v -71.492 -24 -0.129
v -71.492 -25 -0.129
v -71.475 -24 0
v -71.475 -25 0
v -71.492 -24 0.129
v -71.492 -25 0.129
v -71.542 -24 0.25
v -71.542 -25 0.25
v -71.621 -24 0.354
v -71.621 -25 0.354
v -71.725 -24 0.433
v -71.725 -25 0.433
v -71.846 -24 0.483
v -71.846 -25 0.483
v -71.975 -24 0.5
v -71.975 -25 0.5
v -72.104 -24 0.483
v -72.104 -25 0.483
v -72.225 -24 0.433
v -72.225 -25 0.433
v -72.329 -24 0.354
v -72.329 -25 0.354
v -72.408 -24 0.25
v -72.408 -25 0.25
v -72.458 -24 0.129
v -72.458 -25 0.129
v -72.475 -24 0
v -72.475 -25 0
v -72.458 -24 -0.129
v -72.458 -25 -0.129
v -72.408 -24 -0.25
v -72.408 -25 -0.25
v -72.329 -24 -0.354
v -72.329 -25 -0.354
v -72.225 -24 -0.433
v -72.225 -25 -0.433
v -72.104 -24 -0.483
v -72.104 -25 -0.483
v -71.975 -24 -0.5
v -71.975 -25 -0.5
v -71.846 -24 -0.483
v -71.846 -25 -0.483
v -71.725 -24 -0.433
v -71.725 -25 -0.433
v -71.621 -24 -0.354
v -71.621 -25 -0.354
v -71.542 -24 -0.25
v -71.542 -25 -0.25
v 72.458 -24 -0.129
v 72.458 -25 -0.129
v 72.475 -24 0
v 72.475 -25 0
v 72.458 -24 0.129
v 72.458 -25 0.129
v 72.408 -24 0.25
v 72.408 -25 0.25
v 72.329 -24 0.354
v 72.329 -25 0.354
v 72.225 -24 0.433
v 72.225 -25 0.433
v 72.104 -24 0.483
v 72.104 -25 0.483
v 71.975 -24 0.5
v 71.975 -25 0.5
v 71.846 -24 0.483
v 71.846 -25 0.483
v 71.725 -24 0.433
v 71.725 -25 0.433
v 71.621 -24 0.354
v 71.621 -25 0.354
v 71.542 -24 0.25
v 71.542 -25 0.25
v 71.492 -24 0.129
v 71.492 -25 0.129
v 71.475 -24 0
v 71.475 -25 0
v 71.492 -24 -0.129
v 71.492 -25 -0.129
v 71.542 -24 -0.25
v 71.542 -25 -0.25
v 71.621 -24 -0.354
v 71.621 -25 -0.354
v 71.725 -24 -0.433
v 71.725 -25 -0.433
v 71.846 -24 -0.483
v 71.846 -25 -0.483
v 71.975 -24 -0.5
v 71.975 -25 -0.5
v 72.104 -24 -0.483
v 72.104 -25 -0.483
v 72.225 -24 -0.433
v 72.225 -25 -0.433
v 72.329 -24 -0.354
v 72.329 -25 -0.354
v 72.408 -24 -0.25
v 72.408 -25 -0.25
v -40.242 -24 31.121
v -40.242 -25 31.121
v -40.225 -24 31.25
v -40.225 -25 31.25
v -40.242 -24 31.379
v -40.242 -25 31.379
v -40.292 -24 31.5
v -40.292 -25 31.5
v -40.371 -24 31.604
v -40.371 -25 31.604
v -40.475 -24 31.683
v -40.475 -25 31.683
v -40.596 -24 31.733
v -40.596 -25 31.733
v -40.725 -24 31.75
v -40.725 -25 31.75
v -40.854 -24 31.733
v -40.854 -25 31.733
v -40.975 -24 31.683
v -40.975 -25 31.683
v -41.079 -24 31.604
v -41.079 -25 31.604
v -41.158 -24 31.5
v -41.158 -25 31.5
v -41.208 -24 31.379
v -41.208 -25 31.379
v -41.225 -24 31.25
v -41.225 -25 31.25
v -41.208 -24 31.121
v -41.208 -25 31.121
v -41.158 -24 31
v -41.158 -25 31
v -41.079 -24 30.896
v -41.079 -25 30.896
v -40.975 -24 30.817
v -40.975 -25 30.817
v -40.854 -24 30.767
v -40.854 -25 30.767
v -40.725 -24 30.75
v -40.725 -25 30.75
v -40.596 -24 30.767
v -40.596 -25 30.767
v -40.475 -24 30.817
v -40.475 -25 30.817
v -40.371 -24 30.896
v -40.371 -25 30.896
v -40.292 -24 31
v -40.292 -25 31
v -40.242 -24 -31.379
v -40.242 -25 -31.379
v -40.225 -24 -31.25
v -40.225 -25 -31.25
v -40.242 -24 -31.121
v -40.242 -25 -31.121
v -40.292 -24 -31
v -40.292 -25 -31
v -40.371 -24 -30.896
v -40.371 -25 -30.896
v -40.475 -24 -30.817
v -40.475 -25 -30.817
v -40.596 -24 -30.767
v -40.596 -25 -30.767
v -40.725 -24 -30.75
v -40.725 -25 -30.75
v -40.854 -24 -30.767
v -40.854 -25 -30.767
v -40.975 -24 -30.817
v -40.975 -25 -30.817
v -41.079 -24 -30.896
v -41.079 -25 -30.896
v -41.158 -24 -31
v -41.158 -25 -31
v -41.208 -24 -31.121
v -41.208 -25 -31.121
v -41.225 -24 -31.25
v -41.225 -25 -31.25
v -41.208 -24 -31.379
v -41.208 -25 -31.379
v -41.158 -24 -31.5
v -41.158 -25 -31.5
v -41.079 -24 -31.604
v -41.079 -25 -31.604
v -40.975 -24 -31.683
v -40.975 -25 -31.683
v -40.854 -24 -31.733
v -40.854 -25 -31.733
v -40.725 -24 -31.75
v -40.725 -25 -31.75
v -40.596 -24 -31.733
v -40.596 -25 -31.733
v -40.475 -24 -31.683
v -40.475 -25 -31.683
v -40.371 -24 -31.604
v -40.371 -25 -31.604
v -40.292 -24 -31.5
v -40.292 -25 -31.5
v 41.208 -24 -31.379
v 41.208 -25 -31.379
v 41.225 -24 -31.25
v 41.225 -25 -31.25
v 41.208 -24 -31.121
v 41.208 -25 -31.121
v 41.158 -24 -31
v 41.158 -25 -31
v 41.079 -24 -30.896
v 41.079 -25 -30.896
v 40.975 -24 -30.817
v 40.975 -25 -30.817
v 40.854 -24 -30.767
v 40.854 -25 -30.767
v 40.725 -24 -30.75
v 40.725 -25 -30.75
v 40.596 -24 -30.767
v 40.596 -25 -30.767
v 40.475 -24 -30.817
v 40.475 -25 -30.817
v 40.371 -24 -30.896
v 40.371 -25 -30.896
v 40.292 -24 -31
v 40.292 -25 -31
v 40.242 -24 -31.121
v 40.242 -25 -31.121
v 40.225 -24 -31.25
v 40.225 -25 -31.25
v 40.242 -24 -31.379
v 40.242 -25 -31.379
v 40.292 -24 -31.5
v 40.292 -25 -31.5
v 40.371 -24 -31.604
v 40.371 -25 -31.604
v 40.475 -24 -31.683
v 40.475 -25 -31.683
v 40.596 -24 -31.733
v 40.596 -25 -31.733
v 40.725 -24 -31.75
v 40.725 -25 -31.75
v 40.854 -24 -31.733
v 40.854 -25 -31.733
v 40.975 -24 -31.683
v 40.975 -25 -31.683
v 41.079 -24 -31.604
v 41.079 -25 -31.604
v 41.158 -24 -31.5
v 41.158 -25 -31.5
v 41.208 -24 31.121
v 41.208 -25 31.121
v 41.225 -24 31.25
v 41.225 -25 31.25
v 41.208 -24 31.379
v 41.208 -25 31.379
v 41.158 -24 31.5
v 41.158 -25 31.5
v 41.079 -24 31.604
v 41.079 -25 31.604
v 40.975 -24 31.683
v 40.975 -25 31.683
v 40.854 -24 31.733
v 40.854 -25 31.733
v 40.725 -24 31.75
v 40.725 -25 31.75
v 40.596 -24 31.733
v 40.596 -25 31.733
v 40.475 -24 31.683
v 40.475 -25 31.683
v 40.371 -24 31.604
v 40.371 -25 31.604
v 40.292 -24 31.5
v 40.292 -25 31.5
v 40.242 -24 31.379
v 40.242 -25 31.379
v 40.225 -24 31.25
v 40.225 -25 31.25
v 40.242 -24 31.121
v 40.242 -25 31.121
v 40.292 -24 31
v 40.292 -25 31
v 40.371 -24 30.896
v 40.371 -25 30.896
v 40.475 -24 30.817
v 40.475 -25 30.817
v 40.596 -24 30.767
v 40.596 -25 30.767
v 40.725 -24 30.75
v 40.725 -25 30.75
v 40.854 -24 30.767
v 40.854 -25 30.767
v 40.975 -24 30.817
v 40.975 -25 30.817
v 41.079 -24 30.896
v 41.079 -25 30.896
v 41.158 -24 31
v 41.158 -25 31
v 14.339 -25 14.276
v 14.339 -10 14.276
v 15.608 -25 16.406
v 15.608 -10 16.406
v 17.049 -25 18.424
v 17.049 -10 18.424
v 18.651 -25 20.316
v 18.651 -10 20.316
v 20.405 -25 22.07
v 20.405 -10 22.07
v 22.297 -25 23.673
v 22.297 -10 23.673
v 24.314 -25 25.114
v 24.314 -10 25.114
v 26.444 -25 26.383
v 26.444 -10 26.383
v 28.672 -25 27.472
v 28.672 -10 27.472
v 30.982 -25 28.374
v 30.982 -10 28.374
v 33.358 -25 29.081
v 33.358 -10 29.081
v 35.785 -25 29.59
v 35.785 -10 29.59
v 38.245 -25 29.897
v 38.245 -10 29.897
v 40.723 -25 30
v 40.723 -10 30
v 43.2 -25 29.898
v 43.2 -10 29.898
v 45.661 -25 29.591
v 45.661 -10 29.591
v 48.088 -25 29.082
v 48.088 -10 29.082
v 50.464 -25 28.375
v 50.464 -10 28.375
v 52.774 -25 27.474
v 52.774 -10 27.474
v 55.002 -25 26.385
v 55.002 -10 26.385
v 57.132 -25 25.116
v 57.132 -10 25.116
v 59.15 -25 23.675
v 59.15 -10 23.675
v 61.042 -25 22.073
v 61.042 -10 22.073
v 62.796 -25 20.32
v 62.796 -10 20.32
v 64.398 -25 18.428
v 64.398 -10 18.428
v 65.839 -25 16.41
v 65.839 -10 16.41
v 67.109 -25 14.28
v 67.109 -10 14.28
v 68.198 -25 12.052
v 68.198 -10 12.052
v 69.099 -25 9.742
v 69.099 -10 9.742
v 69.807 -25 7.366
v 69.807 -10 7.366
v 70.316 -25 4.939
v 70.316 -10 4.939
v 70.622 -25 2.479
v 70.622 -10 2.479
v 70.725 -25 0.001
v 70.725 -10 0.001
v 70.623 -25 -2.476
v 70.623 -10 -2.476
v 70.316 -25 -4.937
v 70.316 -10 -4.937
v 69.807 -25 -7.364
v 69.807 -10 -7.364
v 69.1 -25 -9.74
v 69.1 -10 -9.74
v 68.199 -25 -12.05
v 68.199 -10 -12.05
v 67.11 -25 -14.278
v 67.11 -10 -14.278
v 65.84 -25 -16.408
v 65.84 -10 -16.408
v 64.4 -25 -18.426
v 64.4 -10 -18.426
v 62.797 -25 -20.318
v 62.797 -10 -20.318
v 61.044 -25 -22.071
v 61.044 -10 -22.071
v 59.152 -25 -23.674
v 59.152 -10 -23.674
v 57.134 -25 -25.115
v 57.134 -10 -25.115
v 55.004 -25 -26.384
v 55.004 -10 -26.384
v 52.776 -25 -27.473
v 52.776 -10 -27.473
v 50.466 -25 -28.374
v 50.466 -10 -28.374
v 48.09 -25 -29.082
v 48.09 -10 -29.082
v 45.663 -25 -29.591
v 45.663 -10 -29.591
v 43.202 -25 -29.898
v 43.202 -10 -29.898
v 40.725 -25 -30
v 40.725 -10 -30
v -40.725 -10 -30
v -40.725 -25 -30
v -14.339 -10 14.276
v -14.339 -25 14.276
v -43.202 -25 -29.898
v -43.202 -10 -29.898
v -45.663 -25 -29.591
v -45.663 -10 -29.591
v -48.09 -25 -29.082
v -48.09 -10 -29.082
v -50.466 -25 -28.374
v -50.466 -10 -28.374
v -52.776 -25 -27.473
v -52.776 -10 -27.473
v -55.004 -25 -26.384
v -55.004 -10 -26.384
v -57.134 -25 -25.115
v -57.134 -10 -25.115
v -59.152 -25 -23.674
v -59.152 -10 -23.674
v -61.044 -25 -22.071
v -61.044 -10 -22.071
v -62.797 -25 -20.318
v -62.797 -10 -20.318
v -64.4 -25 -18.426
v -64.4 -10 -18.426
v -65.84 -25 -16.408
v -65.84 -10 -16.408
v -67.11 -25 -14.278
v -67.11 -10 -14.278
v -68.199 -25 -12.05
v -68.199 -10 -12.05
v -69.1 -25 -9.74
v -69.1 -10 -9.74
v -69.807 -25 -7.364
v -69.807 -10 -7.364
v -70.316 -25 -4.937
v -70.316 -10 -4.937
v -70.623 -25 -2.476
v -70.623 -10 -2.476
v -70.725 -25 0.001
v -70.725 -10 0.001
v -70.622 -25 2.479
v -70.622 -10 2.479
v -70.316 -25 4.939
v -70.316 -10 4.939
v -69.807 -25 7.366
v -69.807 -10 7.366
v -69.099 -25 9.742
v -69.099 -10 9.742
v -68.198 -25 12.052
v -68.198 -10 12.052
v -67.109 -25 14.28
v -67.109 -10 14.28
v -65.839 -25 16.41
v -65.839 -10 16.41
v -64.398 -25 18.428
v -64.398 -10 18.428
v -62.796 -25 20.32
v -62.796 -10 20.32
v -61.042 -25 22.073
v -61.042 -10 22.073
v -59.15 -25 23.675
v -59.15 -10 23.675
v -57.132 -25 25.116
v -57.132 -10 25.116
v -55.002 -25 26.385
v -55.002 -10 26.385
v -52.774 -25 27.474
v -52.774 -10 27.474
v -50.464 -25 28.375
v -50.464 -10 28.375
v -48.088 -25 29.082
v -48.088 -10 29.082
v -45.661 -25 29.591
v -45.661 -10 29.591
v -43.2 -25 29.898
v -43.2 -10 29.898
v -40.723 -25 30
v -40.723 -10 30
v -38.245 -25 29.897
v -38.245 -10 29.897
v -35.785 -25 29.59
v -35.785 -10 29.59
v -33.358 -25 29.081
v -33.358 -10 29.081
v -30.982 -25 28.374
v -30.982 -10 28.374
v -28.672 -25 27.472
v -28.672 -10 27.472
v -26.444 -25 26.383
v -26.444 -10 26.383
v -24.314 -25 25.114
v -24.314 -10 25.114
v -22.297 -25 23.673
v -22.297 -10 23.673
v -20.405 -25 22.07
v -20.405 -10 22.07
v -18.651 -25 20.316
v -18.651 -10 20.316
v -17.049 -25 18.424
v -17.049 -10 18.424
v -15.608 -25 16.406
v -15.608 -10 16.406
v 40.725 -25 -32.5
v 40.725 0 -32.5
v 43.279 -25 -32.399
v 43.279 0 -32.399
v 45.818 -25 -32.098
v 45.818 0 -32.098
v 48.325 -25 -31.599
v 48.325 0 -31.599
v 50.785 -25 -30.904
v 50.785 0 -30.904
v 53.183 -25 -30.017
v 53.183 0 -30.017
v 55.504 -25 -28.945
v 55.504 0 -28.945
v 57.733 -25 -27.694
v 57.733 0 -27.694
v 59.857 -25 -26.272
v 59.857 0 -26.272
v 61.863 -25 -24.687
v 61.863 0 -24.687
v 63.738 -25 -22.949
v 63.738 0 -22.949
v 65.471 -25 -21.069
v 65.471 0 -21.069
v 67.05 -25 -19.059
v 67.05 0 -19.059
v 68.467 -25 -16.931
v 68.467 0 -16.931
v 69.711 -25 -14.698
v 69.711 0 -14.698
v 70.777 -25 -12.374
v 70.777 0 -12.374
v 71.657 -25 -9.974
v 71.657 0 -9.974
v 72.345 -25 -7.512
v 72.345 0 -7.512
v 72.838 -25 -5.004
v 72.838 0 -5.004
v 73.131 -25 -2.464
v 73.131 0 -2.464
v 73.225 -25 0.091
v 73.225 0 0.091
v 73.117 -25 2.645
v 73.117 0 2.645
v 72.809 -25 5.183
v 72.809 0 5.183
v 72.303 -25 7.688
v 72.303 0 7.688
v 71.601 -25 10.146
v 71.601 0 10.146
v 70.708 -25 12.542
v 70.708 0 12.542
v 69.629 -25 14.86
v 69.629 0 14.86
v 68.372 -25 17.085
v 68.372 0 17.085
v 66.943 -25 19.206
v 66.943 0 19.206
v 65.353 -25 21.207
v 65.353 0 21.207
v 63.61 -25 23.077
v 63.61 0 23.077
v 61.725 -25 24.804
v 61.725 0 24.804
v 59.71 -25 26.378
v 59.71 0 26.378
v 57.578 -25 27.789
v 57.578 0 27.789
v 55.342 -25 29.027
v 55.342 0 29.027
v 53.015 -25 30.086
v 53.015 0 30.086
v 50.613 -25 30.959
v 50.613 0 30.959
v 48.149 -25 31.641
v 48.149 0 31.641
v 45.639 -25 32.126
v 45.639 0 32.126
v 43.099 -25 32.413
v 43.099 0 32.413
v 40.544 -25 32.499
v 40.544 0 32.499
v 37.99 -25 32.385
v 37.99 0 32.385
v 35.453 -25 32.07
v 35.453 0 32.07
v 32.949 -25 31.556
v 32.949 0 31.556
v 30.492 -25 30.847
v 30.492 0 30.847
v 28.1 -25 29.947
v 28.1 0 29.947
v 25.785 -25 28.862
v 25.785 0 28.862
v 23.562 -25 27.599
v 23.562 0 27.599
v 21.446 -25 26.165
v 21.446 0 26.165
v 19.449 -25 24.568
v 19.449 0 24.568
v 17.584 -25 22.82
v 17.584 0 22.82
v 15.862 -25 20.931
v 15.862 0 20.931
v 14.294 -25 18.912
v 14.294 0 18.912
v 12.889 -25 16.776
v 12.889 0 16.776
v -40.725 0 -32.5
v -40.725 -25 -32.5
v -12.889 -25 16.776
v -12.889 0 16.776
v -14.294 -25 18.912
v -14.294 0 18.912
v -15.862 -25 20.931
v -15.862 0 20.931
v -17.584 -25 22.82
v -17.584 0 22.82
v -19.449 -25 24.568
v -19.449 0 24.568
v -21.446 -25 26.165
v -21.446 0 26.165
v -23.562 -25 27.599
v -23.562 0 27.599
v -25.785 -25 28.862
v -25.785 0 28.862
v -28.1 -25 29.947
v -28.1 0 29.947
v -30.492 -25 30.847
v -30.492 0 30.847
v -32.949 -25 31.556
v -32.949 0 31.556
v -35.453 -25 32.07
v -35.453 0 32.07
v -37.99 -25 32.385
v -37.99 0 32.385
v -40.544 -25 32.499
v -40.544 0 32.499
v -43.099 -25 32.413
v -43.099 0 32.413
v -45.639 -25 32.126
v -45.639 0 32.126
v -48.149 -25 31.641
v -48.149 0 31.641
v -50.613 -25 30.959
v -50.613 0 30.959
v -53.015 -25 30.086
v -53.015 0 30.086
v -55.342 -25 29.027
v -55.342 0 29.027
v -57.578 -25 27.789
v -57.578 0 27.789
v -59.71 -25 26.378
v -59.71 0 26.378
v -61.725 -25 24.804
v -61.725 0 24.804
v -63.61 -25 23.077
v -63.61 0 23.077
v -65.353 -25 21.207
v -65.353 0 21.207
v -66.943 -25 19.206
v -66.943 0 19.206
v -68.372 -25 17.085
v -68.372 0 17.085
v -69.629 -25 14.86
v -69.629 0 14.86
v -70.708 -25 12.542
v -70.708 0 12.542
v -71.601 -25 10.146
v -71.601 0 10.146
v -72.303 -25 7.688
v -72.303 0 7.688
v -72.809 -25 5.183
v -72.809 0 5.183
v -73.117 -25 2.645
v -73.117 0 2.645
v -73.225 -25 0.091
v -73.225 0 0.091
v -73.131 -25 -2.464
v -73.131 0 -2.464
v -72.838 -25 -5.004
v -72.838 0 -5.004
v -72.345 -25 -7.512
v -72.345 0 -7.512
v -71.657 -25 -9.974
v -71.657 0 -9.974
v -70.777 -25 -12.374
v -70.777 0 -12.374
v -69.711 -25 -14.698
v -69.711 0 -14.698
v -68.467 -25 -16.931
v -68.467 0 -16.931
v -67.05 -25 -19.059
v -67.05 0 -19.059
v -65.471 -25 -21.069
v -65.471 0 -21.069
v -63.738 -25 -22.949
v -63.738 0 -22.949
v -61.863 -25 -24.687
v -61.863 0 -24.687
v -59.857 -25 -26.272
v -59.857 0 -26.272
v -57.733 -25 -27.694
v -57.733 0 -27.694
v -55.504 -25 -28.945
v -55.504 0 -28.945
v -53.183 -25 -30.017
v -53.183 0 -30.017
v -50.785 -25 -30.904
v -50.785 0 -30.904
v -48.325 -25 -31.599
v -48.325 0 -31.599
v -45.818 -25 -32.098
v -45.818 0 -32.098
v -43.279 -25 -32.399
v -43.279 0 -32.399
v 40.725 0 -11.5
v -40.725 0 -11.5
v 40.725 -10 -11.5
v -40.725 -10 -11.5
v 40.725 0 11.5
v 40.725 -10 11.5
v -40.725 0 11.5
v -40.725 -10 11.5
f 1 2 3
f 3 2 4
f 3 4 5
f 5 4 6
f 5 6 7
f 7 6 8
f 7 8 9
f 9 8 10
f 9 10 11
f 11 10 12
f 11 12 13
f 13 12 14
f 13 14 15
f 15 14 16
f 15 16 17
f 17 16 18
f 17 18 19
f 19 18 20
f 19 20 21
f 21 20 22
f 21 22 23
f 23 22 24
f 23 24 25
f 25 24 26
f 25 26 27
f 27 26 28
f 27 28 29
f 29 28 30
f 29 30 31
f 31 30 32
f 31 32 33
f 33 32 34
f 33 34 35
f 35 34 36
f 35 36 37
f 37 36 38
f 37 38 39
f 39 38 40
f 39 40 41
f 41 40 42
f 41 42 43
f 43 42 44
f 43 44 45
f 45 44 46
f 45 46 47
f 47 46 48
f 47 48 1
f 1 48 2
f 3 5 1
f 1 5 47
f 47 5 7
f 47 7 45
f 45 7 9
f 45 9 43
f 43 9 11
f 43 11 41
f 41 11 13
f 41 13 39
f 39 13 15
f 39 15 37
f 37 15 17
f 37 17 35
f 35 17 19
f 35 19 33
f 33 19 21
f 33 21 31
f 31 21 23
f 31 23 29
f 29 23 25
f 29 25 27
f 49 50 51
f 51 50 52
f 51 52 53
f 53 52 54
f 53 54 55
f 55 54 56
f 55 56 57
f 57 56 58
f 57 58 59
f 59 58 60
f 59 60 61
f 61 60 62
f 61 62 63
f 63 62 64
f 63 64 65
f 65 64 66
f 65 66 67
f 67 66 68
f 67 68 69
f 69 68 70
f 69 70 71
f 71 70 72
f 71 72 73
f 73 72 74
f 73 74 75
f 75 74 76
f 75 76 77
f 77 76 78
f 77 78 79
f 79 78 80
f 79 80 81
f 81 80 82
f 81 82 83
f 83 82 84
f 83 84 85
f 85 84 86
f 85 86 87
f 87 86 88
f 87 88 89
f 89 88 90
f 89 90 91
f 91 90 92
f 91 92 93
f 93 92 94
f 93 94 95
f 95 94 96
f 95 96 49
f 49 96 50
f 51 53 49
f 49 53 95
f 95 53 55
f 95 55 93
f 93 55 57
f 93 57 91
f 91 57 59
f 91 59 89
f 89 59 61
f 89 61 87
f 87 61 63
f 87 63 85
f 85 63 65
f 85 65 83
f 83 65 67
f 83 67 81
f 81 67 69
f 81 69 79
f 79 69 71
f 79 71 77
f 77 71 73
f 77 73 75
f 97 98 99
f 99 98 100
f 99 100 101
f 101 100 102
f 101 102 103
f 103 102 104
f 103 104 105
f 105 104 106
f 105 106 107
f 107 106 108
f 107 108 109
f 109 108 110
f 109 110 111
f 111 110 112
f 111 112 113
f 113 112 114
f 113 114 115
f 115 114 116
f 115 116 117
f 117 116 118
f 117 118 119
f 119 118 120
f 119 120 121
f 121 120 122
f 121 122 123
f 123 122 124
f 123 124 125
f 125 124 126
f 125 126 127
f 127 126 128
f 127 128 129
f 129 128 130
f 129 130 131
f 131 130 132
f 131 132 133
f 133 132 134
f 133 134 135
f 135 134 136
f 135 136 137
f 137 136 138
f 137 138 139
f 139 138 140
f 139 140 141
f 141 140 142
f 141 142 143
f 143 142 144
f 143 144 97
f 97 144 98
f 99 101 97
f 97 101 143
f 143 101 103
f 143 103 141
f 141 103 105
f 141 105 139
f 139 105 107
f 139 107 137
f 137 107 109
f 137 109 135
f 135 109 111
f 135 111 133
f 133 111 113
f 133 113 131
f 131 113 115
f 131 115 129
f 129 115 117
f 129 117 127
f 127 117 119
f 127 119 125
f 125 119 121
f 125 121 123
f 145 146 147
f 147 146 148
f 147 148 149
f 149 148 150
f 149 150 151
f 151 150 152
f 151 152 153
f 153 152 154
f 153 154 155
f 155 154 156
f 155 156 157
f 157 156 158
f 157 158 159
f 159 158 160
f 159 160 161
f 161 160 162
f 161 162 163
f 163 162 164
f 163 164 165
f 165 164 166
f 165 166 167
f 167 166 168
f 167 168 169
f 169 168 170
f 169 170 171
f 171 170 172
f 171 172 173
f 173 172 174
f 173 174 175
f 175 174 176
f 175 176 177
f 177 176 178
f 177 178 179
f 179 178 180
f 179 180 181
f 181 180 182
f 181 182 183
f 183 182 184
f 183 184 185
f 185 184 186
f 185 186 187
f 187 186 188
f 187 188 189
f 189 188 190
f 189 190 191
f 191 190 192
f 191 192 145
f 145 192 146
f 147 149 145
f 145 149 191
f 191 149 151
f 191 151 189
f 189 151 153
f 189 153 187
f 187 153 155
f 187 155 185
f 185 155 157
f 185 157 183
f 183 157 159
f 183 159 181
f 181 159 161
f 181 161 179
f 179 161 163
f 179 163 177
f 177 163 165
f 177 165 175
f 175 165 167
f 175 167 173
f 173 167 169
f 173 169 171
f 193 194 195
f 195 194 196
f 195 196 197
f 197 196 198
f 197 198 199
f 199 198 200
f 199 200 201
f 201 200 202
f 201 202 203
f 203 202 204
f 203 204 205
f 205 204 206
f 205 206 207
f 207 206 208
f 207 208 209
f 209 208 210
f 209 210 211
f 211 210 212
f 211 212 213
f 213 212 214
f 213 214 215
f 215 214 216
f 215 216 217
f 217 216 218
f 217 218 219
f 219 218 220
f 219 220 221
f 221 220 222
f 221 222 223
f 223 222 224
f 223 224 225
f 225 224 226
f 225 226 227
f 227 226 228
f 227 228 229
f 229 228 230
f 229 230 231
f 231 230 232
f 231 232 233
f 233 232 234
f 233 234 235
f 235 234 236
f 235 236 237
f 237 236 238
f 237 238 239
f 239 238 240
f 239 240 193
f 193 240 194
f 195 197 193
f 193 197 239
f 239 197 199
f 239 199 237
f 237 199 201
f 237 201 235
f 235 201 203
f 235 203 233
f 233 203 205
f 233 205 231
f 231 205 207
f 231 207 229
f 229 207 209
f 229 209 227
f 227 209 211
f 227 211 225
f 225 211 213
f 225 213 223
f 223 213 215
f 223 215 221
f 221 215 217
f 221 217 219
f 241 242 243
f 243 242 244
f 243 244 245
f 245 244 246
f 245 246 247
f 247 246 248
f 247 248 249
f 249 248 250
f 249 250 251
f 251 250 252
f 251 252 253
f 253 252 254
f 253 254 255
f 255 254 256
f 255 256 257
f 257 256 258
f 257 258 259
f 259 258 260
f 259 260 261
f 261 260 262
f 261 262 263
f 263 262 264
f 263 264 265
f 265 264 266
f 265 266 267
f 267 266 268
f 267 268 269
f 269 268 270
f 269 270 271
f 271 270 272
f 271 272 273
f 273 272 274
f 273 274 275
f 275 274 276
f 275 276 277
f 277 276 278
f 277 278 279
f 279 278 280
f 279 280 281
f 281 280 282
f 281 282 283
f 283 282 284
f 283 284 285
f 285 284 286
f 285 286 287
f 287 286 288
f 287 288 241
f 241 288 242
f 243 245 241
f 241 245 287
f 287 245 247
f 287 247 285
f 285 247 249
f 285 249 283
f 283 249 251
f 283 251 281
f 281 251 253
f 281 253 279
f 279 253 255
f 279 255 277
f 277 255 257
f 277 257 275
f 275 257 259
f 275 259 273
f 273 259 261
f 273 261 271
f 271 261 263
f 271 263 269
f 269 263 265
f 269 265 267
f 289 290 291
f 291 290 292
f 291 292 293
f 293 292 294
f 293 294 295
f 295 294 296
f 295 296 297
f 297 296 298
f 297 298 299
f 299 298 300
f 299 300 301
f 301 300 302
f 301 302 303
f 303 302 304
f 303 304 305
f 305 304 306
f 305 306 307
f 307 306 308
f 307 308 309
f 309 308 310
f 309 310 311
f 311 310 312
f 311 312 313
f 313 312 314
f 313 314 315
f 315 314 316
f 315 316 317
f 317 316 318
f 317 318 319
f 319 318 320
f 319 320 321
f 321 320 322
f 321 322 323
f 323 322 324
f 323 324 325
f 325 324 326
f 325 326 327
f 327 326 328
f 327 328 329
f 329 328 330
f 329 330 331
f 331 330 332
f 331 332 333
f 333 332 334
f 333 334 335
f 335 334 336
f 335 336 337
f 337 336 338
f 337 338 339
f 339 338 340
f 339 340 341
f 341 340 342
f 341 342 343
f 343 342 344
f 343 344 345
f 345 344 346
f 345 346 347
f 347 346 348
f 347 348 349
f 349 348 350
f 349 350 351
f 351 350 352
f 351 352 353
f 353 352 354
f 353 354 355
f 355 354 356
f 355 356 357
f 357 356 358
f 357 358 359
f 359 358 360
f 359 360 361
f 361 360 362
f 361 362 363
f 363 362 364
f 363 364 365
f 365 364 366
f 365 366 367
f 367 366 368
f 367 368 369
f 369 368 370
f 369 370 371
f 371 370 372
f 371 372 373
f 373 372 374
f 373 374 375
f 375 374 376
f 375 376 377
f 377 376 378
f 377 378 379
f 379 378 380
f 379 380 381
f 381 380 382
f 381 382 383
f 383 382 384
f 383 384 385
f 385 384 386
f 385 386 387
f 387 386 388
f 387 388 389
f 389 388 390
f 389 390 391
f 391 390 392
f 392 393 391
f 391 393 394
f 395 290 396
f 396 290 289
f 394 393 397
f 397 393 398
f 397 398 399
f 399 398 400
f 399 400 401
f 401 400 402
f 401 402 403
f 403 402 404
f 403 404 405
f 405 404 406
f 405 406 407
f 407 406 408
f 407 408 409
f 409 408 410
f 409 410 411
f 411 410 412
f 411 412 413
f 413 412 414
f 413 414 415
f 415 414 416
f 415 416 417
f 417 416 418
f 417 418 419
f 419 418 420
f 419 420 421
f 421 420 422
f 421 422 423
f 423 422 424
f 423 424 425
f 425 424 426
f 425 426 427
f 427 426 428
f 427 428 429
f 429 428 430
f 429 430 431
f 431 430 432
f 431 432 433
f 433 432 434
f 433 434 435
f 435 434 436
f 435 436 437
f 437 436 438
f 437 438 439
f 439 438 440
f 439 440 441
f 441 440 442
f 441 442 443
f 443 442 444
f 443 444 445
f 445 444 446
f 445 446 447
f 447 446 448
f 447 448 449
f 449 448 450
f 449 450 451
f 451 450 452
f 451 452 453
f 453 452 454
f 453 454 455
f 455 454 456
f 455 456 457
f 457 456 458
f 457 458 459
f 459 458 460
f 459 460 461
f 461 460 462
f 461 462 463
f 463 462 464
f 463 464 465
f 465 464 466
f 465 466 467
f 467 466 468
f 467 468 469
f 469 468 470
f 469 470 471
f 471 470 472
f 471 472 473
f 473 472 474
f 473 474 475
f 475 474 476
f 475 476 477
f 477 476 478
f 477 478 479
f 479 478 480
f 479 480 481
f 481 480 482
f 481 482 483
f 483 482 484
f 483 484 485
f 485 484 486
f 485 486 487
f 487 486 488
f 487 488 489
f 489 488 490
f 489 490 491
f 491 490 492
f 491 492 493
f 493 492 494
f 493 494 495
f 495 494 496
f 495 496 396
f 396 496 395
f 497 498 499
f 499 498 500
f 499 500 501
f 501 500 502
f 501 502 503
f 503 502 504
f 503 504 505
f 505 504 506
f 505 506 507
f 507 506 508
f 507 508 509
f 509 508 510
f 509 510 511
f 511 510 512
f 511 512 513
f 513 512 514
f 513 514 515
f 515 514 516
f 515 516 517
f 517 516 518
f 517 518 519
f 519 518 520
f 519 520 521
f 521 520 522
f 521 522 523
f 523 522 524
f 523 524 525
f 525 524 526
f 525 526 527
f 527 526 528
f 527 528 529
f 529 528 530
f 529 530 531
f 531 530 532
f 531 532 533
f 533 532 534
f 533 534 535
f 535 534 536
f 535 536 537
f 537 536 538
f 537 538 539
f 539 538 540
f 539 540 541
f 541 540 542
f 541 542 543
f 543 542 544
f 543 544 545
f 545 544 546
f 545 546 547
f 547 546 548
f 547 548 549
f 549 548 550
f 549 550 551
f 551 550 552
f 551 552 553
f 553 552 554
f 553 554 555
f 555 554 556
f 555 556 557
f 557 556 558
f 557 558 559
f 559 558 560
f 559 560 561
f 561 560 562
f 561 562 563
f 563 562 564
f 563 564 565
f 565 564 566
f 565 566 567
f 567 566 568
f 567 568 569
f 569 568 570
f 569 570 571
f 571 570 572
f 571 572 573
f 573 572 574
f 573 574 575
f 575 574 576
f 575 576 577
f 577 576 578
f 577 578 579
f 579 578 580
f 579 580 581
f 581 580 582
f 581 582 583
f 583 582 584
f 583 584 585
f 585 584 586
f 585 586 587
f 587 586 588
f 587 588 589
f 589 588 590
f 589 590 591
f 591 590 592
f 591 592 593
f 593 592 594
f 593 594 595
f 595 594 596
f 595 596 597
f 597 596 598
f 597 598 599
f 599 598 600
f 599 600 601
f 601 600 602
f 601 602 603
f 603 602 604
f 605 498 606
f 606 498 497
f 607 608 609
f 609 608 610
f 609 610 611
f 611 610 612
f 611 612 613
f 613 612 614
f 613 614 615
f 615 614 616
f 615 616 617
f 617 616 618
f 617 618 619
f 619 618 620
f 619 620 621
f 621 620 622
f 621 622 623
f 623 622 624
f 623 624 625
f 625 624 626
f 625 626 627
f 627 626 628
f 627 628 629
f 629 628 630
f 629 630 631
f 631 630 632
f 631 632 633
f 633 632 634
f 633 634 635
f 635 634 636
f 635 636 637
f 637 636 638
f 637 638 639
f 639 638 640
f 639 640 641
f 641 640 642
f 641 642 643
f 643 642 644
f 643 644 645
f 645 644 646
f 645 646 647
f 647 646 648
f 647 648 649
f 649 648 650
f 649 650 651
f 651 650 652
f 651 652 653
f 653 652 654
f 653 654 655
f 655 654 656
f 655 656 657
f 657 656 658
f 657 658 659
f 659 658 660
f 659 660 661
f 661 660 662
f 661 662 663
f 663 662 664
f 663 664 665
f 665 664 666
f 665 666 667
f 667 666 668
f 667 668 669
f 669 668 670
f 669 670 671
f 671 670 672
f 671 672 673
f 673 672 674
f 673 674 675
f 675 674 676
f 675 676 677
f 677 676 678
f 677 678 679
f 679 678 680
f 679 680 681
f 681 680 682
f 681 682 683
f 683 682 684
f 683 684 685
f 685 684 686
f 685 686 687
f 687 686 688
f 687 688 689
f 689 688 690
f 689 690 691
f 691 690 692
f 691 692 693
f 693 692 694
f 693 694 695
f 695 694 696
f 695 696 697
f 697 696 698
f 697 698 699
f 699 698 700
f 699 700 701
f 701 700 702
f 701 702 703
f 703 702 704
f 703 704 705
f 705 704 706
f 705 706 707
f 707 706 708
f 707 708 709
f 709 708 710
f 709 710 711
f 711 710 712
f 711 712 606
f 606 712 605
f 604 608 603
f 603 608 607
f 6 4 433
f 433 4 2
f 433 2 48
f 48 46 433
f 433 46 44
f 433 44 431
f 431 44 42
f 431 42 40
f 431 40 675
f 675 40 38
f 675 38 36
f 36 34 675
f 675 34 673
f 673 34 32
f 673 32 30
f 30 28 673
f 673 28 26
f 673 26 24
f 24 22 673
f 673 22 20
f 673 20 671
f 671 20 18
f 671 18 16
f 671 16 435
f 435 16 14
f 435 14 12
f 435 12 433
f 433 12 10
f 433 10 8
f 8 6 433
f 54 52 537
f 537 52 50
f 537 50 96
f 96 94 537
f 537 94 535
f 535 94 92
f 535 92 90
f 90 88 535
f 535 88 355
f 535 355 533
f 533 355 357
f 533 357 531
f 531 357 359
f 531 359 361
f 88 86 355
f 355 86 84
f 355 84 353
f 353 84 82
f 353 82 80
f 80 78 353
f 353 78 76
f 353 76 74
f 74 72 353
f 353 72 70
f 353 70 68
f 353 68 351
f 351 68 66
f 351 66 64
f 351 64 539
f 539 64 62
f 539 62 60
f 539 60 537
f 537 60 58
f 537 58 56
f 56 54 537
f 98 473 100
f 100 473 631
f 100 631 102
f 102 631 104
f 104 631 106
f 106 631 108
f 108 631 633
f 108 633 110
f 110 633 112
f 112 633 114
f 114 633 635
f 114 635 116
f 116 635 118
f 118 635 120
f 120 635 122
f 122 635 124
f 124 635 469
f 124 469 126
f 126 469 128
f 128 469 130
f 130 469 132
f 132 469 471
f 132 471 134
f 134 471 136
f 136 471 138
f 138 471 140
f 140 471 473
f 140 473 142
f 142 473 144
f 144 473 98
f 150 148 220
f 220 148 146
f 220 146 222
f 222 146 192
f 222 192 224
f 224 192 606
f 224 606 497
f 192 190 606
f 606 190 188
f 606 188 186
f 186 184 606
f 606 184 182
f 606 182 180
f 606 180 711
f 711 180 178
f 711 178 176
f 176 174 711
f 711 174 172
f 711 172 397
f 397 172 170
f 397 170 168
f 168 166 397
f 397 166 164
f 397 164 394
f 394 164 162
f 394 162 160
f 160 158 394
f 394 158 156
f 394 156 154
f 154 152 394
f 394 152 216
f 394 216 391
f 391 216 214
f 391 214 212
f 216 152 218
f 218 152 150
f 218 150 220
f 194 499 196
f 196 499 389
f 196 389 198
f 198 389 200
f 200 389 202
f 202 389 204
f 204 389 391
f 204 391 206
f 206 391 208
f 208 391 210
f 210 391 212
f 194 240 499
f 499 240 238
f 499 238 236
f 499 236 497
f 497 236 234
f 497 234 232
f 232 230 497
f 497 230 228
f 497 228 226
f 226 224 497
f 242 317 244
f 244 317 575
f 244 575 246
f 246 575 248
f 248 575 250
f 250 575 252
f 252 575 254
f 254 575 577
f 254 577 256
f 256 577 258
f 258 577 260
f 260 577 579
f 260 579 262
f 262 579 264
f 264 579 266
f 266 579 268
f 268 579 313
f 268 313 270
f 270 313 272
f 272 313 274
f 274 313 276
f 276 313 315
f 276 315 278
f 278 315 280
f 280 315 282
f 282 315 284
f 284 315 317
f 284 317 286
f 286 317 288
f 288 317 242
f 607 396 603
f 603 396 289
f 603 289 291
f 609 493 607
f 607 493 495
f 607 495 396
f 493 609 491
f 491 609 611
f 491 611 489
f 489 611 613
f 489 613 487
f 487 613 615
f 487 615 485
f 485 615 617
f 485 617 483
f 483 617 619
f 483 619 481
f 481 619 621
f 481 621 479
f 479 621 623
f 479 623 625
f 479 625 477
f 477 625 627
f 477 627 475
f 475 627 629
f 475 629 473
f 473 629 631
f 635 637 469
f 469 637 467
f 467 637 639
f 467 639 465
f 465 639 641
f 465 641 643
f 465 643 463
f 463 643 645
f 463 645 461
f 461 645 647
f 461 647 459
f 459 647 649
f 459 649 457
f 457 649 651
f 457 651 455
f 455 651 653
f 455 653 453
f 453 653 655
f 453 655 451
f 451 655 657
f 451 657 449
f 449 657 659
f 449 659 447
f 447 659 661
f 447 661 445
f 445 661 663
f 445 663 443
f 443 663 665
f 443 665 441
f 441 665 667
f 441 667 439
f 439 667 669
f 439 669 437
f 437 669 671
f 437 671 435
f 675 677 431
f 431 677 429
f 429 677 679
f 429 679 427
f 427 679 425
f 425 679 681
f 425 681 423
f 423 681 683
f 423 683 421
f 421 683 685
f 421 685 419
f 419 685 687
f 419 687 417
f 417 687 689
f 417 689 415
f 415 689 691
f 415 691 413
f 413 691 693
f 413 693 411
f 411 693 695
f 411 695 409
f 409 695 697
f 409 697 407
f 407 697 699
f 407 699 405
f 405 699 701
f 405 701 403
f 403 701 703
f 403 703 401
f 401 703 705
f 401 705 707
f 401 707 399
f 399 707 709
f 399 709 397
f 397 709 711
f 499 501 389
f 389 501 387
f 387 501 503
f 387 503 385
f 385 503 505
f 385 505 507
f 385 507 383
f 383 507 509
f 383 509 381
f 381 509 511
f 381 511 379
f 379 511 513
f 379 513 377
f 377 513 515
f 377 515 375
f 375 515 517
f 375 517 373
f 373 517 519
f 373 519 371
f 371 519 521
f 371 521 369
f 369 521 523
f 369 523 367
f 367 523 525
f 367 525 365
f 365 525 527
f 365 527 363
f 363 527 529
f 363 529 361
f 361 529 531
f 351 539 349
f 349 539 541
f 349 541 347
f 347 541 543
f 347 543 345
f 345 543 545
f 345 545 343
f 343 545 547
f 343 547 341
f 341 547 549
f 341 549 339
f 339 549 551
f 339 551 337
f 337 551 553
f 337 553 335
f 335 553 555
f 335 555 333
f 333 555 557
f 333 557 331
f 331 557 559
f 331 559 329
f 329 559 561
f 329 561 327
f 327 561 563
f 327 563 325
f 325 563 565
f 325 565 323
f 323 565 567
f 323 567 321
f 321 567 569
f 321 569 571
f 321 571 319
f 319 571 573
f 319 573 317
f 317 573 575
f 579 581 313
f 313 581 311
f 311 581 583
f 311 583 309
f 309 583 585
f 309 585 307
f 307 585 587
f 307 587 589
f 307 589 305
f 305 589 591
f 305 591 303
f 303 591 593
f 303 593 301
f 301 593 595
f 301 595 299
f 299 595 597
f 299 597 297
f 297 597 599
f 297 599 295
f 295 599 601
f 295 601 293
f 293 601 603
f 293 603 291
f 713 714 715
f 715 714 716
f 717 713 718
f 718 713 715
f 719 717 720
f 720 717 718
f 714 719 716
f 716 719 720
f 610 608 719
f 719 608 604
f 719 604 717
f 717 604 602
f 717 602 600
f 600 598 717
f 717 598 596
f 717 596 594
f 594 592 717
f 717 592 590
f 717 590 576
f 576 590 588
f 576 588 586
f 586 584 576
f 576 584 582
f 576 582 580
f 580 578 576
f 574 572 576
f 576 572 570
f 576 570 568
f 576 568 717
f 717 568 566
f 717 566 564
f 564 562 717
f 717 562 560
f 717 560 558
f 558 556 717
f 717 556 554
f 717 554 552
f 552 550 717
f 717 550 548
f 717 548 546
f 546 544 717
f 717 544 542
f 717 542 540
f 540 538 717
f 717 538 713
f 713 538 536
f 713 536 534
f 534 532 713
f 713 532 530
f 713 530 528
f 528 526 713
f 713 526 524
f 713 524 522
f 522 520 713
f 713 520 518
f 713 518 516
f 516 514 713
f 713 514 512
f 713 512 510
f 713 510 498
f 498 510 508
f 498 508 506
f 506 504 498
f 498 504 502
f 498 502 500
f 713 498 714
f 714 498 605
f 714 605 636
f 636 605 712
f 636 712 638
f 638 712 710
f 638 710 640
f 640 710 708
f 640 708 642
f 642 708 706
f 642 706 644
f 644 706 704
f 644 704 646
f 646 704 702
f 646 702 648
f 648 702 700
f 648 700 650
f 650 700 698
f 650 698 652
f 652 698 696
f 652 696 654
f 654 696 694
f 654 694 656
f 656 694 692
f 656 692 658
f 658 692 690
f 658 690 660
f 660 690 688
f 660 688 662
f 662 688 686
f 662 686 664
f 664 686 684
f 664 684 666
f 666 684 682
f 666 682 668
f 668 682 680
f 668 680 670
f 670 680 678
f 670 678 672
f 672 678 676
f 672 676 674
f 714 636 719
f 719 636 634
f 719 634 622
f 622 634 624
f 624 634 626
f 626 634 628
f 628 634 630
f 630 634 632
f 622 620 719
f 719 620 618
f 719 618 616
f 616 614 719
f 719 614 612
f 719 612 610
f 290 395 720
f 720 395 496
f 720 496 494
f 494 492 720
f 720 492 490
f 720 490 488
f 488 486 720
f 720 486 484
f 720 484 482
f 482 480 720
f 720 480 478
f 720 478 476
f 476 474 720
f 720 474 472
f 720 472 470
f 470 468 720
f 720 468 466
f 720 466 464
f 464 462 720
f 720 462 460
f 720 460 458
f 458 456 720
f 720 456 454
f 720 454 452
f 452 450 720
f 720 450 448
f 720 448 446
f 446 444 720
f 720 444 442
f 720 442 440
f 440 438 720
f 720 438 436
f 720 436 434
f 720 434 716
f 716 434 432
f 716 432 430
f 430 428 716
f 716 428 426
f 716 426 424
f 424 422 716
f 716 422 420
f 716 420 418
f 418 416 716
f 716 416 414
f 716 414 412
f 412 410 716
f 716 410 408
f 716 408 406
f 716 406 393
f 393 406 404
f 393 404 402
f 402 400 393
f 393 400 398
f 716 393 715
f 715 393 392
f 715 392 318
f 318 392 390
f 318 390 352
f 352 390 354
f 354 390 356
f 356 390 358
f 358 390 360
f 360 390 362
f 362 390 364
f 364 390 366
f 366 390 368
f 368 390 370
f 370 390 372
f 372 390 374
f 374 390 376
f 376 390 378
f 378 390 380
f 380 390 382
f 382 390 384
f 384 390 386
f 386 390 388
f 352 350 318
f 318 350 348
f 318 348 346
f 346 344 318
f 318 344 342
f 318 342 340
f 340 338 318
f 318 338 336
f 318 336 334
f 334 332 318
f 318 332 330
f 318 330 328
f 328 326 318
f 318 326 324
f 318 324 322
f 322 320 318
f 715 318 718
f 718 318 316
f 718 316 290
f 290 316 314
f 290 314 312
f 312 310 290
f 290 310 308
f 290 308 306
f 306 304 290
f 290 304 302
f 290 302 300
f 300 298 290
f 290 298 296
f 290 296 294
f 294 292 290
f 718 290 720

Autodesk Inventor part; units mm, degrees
ref_plane "YZ Plane" through (0, 0, 0) normal (1, 0, 0) x (0, 1, 0)
ref_plane "XZ Plane" through (0, 0, 0) normal (0, 1, 0) x (-1, 0, 0)
sketch "Sketch1" plane through (0, 0, 0) normal (0, 1, 0) x (-1, 0, 0)
  line L0 (0, 0) -> (0, -22.1379) construction
  line L1 (0, 0) -> (0, 22.1379) construction
  line L2 (0, 0) -> (40.725, 0) construction
  line L3 (0, 0) -> (-40.725, 0) construction
  circle A0 centre (-40.725, 0) radius 30 construction
  circle A1 centre (-40.725, 0) radius 32.5 construction
  circle A2 centre (40.725, 0) radius 30 construction
  circle A3 centre (40.725, 0) radius 32.5 construction
  line L4 (40.725, -30) -> (40.725, 30) construction
  line L5 (40.725, -30) -> (40.725, -32.5) construction
  line L6 (40.725, 30) -> (40.725, 32.5) construction
  line L7 (-40.725, 30) -> (-40.725, -30) construction
  line L8 (-40.725, -32.5) -> (-40.725, -30) construction
  line L9 (-40.725, 30) -> (-40.725, 32.5) construction
  line L10 (40.725, -32.5) -> (-40.725, -32.5) construction
  line L11 (40.725, -30) -> (-40.725, -30) construction
  line L12 (40.725, 32.5) -> (40.725, 14.2758) construction
  line L13 (40.725, 14.2758) -> (-40.725, 14.2758) construction
  line L14 (40.725, 32.5) -> (40.725, 16.7758) construction
  line L15 (40.725, 16.7758) -> (-40.725, 16.7758) construction
  arc A4 (40.725, -30) -> (70.725, 0) centre (40.725, 0) ccw
  arc A5 (70.725, 0) -> (40.725, 30) centre (40.725, 0) ccw
  arc A6 (40.725, 32.5) -> (12.8894, 16.7758) centre (40.725, 0) ccw
  arc A7 (73.225, 0) -> (40.725, 32.5) centre (40.725, 0) ccw
  arc A8 (40.725, -32.5) -> (73.225, 0) centre (40.725, 0) ccw
  line L16 (40.725, -30) -> (-40.725, -30)
  line L17 (-40.725, -32.5) -> (40.725, -32.5)
  line L18 (12.8894, 16.7758) -> (-12.8894, 16.7758)
  line L19 (14.3394, 14.2758) -> (-14.3394, 14.2758)
  arc A9 (40.725, 30) -> (14.3394, 14.2758) centre (40.725, 0) ccw
  arc A10 (-12.8894, 16.7758) -> (-40.725, 32.5) centre (-40.725, 0) ccw
  arc A11 (-14.3394, 14.2758) -> (-40.725, 30) centre (-40.725, 0) ccw
  arc A12 (-40.725, 30) -> (-70.725, 0) centre (-40.725, 0) ccw
  arc A13 (-40.725, 32.5) -> (-73.225, 0) centre (-40.725, 0) ccw
  arc A14 (-70.725, 0) -> (-40.725, -30) centre (-40.725, 0) ccw
  arc A15 (-73.225, 0) -> (-40.725, -32.5) centre (-40.725, 0) ccw
  line L20 (0, 0) -> (39, 0) construction
  line L21 (0, 0) -> (-39, 0) construction
  line L22 (40.725, 0) -> (40.725, -11.5) construction
  line L23 (40.725, 0) -> (40.725, 11.5) construction
  line L24 (-40.725, 0) -> (-40.725, -11.5) construction
  line L25 (-40.725, 0) -> (-40.725, 11.5) construction
  line L26 (40.725, -11.5) -> (-40.725, -11.5)
  line L27 (40.725, 11.5) -> (-40.725, 11.5)
  line L28 (-40.725, 11.5) -> (-40.725, -11.5)
  line L29 (40.725, -11.5) -> (40.725, 11.5)
  dimension "d0" = 22.1379
  dimension "d1" = 22.1379
  dimension "d2" = 40.725
  dimension "d3" = 40.725
  dimension "d4" = 60
  dimension "d5" = 65
  dimension "d6" = 60
  dimension "d7" = 65
  dimension "d8" = 18.2242
  dimension "d9" = 15.7241
  dimension "d10" = 39
  dimension "d11" = 39
  dimension "d12" = 11.5
  dimension "d13" = 11.5
  dimension "d14" = 11.5
  dimension "d15" = 11.5
extrude "Extrusion1" add sketch "Sketch1" against normal blind 10 contours L16 A14 A12 A11 L19 A9 A5 A4
extrude "Extrusion2" add sketch "Sketch1" against normal blind 25 contours A7 A8 L17 A15 A13 A10 L18 A6
ref_plane "Work Plane1" through (0, -25, 0) normal (0, -1, 0) x (1, 0, 0)
sketch "Sketch2" plane through (0, -25, 0) normal (0, -1, 0) x (1, 0, 0)
  arc A0 (-14.3394, 14.2758) -> (-40.725, -30) centre (-40.725, 0) ccw projected
  arc A1 (-12.8894, 16.7758) -> (-40.725, -32.5) centre (-40.725, 0) ccw projected
  arc A2 (40.725, -32.5) -> (12.8894, 16.7758) centre (40.725, 0) ccw projected
  arc A3 (40.725, -30) -> (14.3394, 14.2758) centre (40.725, 0) ccw projected
  line L0 (-14.3394, 14.2758) -> (14.3394, 14.2758) projected
  line L1 (12.8894, 16.7758) -> (-12.8894, 16.7758) projected
  line L2 (40.725, -30) -> (-40.725, -30) projected
  line L3 (-40.725, -32.5) -> (40.725, -32.5) projected
  line L4 (-40.725, 30) -> (-40.725, -30) construction
  line L5 (-40.725, 30) -> (-40.725, 32.5) construction
  line L6 (-40.725, -30) -> (-40.725, -32.5) construction
  line L7 (40.725, 30) -> (40.725, -30) construction
  line L8 (40.725, 30) -> (40.725, 32.5) construction
  line L9 (40.725, -30) -> (40.725, -32.5) construction
  line L10 (-70.725, 0) -> (70.725, 0) construction
  line L11 (70.725, 0) -> (73.225, 0) construction
  line L12 (-73.225, 0) -> (-70.725, 0) construction
  line L13 (0, 14.2758) -> (0, -30) construction
  line L14 (0, -30) -> (0, -32.5) construction
  line L15 (0, 14.2758) -> (0, 16.7758) construction
  circle A4 centre (71.975, 0) radius 0.5
  circle A5 centre (40.725, -31.25) radius 0.5
  circle A6 centre (40.725, 31.25) radius 0.5
  circle A7 centre (0, 15.5258) radius 0.5
  circle A8 centre (-40.725, 31.25) radius 0.5
  circle A9 centre (-71.975, 0) radius 0.5
  circle A10 centre (-40.725, -31.25) radius 0.5
  point P0 (0, 0)
  dimension "d21" = 1
  dimension "d22" = 1
  dimension "d23" = 1
  dimension "d24" = 1
  dimension "d25" = 1
  dimension "d26" = 1
  dimension "d27" = 1
extrude "Extrusion3" cut sketch "Sketch2" against normal blind 1 contours A4 | A5 | A6 | A8 | A9 | A10
equation "\"d28\" = d22"
properties part number "con_v8_d1_back_3DPrint"
